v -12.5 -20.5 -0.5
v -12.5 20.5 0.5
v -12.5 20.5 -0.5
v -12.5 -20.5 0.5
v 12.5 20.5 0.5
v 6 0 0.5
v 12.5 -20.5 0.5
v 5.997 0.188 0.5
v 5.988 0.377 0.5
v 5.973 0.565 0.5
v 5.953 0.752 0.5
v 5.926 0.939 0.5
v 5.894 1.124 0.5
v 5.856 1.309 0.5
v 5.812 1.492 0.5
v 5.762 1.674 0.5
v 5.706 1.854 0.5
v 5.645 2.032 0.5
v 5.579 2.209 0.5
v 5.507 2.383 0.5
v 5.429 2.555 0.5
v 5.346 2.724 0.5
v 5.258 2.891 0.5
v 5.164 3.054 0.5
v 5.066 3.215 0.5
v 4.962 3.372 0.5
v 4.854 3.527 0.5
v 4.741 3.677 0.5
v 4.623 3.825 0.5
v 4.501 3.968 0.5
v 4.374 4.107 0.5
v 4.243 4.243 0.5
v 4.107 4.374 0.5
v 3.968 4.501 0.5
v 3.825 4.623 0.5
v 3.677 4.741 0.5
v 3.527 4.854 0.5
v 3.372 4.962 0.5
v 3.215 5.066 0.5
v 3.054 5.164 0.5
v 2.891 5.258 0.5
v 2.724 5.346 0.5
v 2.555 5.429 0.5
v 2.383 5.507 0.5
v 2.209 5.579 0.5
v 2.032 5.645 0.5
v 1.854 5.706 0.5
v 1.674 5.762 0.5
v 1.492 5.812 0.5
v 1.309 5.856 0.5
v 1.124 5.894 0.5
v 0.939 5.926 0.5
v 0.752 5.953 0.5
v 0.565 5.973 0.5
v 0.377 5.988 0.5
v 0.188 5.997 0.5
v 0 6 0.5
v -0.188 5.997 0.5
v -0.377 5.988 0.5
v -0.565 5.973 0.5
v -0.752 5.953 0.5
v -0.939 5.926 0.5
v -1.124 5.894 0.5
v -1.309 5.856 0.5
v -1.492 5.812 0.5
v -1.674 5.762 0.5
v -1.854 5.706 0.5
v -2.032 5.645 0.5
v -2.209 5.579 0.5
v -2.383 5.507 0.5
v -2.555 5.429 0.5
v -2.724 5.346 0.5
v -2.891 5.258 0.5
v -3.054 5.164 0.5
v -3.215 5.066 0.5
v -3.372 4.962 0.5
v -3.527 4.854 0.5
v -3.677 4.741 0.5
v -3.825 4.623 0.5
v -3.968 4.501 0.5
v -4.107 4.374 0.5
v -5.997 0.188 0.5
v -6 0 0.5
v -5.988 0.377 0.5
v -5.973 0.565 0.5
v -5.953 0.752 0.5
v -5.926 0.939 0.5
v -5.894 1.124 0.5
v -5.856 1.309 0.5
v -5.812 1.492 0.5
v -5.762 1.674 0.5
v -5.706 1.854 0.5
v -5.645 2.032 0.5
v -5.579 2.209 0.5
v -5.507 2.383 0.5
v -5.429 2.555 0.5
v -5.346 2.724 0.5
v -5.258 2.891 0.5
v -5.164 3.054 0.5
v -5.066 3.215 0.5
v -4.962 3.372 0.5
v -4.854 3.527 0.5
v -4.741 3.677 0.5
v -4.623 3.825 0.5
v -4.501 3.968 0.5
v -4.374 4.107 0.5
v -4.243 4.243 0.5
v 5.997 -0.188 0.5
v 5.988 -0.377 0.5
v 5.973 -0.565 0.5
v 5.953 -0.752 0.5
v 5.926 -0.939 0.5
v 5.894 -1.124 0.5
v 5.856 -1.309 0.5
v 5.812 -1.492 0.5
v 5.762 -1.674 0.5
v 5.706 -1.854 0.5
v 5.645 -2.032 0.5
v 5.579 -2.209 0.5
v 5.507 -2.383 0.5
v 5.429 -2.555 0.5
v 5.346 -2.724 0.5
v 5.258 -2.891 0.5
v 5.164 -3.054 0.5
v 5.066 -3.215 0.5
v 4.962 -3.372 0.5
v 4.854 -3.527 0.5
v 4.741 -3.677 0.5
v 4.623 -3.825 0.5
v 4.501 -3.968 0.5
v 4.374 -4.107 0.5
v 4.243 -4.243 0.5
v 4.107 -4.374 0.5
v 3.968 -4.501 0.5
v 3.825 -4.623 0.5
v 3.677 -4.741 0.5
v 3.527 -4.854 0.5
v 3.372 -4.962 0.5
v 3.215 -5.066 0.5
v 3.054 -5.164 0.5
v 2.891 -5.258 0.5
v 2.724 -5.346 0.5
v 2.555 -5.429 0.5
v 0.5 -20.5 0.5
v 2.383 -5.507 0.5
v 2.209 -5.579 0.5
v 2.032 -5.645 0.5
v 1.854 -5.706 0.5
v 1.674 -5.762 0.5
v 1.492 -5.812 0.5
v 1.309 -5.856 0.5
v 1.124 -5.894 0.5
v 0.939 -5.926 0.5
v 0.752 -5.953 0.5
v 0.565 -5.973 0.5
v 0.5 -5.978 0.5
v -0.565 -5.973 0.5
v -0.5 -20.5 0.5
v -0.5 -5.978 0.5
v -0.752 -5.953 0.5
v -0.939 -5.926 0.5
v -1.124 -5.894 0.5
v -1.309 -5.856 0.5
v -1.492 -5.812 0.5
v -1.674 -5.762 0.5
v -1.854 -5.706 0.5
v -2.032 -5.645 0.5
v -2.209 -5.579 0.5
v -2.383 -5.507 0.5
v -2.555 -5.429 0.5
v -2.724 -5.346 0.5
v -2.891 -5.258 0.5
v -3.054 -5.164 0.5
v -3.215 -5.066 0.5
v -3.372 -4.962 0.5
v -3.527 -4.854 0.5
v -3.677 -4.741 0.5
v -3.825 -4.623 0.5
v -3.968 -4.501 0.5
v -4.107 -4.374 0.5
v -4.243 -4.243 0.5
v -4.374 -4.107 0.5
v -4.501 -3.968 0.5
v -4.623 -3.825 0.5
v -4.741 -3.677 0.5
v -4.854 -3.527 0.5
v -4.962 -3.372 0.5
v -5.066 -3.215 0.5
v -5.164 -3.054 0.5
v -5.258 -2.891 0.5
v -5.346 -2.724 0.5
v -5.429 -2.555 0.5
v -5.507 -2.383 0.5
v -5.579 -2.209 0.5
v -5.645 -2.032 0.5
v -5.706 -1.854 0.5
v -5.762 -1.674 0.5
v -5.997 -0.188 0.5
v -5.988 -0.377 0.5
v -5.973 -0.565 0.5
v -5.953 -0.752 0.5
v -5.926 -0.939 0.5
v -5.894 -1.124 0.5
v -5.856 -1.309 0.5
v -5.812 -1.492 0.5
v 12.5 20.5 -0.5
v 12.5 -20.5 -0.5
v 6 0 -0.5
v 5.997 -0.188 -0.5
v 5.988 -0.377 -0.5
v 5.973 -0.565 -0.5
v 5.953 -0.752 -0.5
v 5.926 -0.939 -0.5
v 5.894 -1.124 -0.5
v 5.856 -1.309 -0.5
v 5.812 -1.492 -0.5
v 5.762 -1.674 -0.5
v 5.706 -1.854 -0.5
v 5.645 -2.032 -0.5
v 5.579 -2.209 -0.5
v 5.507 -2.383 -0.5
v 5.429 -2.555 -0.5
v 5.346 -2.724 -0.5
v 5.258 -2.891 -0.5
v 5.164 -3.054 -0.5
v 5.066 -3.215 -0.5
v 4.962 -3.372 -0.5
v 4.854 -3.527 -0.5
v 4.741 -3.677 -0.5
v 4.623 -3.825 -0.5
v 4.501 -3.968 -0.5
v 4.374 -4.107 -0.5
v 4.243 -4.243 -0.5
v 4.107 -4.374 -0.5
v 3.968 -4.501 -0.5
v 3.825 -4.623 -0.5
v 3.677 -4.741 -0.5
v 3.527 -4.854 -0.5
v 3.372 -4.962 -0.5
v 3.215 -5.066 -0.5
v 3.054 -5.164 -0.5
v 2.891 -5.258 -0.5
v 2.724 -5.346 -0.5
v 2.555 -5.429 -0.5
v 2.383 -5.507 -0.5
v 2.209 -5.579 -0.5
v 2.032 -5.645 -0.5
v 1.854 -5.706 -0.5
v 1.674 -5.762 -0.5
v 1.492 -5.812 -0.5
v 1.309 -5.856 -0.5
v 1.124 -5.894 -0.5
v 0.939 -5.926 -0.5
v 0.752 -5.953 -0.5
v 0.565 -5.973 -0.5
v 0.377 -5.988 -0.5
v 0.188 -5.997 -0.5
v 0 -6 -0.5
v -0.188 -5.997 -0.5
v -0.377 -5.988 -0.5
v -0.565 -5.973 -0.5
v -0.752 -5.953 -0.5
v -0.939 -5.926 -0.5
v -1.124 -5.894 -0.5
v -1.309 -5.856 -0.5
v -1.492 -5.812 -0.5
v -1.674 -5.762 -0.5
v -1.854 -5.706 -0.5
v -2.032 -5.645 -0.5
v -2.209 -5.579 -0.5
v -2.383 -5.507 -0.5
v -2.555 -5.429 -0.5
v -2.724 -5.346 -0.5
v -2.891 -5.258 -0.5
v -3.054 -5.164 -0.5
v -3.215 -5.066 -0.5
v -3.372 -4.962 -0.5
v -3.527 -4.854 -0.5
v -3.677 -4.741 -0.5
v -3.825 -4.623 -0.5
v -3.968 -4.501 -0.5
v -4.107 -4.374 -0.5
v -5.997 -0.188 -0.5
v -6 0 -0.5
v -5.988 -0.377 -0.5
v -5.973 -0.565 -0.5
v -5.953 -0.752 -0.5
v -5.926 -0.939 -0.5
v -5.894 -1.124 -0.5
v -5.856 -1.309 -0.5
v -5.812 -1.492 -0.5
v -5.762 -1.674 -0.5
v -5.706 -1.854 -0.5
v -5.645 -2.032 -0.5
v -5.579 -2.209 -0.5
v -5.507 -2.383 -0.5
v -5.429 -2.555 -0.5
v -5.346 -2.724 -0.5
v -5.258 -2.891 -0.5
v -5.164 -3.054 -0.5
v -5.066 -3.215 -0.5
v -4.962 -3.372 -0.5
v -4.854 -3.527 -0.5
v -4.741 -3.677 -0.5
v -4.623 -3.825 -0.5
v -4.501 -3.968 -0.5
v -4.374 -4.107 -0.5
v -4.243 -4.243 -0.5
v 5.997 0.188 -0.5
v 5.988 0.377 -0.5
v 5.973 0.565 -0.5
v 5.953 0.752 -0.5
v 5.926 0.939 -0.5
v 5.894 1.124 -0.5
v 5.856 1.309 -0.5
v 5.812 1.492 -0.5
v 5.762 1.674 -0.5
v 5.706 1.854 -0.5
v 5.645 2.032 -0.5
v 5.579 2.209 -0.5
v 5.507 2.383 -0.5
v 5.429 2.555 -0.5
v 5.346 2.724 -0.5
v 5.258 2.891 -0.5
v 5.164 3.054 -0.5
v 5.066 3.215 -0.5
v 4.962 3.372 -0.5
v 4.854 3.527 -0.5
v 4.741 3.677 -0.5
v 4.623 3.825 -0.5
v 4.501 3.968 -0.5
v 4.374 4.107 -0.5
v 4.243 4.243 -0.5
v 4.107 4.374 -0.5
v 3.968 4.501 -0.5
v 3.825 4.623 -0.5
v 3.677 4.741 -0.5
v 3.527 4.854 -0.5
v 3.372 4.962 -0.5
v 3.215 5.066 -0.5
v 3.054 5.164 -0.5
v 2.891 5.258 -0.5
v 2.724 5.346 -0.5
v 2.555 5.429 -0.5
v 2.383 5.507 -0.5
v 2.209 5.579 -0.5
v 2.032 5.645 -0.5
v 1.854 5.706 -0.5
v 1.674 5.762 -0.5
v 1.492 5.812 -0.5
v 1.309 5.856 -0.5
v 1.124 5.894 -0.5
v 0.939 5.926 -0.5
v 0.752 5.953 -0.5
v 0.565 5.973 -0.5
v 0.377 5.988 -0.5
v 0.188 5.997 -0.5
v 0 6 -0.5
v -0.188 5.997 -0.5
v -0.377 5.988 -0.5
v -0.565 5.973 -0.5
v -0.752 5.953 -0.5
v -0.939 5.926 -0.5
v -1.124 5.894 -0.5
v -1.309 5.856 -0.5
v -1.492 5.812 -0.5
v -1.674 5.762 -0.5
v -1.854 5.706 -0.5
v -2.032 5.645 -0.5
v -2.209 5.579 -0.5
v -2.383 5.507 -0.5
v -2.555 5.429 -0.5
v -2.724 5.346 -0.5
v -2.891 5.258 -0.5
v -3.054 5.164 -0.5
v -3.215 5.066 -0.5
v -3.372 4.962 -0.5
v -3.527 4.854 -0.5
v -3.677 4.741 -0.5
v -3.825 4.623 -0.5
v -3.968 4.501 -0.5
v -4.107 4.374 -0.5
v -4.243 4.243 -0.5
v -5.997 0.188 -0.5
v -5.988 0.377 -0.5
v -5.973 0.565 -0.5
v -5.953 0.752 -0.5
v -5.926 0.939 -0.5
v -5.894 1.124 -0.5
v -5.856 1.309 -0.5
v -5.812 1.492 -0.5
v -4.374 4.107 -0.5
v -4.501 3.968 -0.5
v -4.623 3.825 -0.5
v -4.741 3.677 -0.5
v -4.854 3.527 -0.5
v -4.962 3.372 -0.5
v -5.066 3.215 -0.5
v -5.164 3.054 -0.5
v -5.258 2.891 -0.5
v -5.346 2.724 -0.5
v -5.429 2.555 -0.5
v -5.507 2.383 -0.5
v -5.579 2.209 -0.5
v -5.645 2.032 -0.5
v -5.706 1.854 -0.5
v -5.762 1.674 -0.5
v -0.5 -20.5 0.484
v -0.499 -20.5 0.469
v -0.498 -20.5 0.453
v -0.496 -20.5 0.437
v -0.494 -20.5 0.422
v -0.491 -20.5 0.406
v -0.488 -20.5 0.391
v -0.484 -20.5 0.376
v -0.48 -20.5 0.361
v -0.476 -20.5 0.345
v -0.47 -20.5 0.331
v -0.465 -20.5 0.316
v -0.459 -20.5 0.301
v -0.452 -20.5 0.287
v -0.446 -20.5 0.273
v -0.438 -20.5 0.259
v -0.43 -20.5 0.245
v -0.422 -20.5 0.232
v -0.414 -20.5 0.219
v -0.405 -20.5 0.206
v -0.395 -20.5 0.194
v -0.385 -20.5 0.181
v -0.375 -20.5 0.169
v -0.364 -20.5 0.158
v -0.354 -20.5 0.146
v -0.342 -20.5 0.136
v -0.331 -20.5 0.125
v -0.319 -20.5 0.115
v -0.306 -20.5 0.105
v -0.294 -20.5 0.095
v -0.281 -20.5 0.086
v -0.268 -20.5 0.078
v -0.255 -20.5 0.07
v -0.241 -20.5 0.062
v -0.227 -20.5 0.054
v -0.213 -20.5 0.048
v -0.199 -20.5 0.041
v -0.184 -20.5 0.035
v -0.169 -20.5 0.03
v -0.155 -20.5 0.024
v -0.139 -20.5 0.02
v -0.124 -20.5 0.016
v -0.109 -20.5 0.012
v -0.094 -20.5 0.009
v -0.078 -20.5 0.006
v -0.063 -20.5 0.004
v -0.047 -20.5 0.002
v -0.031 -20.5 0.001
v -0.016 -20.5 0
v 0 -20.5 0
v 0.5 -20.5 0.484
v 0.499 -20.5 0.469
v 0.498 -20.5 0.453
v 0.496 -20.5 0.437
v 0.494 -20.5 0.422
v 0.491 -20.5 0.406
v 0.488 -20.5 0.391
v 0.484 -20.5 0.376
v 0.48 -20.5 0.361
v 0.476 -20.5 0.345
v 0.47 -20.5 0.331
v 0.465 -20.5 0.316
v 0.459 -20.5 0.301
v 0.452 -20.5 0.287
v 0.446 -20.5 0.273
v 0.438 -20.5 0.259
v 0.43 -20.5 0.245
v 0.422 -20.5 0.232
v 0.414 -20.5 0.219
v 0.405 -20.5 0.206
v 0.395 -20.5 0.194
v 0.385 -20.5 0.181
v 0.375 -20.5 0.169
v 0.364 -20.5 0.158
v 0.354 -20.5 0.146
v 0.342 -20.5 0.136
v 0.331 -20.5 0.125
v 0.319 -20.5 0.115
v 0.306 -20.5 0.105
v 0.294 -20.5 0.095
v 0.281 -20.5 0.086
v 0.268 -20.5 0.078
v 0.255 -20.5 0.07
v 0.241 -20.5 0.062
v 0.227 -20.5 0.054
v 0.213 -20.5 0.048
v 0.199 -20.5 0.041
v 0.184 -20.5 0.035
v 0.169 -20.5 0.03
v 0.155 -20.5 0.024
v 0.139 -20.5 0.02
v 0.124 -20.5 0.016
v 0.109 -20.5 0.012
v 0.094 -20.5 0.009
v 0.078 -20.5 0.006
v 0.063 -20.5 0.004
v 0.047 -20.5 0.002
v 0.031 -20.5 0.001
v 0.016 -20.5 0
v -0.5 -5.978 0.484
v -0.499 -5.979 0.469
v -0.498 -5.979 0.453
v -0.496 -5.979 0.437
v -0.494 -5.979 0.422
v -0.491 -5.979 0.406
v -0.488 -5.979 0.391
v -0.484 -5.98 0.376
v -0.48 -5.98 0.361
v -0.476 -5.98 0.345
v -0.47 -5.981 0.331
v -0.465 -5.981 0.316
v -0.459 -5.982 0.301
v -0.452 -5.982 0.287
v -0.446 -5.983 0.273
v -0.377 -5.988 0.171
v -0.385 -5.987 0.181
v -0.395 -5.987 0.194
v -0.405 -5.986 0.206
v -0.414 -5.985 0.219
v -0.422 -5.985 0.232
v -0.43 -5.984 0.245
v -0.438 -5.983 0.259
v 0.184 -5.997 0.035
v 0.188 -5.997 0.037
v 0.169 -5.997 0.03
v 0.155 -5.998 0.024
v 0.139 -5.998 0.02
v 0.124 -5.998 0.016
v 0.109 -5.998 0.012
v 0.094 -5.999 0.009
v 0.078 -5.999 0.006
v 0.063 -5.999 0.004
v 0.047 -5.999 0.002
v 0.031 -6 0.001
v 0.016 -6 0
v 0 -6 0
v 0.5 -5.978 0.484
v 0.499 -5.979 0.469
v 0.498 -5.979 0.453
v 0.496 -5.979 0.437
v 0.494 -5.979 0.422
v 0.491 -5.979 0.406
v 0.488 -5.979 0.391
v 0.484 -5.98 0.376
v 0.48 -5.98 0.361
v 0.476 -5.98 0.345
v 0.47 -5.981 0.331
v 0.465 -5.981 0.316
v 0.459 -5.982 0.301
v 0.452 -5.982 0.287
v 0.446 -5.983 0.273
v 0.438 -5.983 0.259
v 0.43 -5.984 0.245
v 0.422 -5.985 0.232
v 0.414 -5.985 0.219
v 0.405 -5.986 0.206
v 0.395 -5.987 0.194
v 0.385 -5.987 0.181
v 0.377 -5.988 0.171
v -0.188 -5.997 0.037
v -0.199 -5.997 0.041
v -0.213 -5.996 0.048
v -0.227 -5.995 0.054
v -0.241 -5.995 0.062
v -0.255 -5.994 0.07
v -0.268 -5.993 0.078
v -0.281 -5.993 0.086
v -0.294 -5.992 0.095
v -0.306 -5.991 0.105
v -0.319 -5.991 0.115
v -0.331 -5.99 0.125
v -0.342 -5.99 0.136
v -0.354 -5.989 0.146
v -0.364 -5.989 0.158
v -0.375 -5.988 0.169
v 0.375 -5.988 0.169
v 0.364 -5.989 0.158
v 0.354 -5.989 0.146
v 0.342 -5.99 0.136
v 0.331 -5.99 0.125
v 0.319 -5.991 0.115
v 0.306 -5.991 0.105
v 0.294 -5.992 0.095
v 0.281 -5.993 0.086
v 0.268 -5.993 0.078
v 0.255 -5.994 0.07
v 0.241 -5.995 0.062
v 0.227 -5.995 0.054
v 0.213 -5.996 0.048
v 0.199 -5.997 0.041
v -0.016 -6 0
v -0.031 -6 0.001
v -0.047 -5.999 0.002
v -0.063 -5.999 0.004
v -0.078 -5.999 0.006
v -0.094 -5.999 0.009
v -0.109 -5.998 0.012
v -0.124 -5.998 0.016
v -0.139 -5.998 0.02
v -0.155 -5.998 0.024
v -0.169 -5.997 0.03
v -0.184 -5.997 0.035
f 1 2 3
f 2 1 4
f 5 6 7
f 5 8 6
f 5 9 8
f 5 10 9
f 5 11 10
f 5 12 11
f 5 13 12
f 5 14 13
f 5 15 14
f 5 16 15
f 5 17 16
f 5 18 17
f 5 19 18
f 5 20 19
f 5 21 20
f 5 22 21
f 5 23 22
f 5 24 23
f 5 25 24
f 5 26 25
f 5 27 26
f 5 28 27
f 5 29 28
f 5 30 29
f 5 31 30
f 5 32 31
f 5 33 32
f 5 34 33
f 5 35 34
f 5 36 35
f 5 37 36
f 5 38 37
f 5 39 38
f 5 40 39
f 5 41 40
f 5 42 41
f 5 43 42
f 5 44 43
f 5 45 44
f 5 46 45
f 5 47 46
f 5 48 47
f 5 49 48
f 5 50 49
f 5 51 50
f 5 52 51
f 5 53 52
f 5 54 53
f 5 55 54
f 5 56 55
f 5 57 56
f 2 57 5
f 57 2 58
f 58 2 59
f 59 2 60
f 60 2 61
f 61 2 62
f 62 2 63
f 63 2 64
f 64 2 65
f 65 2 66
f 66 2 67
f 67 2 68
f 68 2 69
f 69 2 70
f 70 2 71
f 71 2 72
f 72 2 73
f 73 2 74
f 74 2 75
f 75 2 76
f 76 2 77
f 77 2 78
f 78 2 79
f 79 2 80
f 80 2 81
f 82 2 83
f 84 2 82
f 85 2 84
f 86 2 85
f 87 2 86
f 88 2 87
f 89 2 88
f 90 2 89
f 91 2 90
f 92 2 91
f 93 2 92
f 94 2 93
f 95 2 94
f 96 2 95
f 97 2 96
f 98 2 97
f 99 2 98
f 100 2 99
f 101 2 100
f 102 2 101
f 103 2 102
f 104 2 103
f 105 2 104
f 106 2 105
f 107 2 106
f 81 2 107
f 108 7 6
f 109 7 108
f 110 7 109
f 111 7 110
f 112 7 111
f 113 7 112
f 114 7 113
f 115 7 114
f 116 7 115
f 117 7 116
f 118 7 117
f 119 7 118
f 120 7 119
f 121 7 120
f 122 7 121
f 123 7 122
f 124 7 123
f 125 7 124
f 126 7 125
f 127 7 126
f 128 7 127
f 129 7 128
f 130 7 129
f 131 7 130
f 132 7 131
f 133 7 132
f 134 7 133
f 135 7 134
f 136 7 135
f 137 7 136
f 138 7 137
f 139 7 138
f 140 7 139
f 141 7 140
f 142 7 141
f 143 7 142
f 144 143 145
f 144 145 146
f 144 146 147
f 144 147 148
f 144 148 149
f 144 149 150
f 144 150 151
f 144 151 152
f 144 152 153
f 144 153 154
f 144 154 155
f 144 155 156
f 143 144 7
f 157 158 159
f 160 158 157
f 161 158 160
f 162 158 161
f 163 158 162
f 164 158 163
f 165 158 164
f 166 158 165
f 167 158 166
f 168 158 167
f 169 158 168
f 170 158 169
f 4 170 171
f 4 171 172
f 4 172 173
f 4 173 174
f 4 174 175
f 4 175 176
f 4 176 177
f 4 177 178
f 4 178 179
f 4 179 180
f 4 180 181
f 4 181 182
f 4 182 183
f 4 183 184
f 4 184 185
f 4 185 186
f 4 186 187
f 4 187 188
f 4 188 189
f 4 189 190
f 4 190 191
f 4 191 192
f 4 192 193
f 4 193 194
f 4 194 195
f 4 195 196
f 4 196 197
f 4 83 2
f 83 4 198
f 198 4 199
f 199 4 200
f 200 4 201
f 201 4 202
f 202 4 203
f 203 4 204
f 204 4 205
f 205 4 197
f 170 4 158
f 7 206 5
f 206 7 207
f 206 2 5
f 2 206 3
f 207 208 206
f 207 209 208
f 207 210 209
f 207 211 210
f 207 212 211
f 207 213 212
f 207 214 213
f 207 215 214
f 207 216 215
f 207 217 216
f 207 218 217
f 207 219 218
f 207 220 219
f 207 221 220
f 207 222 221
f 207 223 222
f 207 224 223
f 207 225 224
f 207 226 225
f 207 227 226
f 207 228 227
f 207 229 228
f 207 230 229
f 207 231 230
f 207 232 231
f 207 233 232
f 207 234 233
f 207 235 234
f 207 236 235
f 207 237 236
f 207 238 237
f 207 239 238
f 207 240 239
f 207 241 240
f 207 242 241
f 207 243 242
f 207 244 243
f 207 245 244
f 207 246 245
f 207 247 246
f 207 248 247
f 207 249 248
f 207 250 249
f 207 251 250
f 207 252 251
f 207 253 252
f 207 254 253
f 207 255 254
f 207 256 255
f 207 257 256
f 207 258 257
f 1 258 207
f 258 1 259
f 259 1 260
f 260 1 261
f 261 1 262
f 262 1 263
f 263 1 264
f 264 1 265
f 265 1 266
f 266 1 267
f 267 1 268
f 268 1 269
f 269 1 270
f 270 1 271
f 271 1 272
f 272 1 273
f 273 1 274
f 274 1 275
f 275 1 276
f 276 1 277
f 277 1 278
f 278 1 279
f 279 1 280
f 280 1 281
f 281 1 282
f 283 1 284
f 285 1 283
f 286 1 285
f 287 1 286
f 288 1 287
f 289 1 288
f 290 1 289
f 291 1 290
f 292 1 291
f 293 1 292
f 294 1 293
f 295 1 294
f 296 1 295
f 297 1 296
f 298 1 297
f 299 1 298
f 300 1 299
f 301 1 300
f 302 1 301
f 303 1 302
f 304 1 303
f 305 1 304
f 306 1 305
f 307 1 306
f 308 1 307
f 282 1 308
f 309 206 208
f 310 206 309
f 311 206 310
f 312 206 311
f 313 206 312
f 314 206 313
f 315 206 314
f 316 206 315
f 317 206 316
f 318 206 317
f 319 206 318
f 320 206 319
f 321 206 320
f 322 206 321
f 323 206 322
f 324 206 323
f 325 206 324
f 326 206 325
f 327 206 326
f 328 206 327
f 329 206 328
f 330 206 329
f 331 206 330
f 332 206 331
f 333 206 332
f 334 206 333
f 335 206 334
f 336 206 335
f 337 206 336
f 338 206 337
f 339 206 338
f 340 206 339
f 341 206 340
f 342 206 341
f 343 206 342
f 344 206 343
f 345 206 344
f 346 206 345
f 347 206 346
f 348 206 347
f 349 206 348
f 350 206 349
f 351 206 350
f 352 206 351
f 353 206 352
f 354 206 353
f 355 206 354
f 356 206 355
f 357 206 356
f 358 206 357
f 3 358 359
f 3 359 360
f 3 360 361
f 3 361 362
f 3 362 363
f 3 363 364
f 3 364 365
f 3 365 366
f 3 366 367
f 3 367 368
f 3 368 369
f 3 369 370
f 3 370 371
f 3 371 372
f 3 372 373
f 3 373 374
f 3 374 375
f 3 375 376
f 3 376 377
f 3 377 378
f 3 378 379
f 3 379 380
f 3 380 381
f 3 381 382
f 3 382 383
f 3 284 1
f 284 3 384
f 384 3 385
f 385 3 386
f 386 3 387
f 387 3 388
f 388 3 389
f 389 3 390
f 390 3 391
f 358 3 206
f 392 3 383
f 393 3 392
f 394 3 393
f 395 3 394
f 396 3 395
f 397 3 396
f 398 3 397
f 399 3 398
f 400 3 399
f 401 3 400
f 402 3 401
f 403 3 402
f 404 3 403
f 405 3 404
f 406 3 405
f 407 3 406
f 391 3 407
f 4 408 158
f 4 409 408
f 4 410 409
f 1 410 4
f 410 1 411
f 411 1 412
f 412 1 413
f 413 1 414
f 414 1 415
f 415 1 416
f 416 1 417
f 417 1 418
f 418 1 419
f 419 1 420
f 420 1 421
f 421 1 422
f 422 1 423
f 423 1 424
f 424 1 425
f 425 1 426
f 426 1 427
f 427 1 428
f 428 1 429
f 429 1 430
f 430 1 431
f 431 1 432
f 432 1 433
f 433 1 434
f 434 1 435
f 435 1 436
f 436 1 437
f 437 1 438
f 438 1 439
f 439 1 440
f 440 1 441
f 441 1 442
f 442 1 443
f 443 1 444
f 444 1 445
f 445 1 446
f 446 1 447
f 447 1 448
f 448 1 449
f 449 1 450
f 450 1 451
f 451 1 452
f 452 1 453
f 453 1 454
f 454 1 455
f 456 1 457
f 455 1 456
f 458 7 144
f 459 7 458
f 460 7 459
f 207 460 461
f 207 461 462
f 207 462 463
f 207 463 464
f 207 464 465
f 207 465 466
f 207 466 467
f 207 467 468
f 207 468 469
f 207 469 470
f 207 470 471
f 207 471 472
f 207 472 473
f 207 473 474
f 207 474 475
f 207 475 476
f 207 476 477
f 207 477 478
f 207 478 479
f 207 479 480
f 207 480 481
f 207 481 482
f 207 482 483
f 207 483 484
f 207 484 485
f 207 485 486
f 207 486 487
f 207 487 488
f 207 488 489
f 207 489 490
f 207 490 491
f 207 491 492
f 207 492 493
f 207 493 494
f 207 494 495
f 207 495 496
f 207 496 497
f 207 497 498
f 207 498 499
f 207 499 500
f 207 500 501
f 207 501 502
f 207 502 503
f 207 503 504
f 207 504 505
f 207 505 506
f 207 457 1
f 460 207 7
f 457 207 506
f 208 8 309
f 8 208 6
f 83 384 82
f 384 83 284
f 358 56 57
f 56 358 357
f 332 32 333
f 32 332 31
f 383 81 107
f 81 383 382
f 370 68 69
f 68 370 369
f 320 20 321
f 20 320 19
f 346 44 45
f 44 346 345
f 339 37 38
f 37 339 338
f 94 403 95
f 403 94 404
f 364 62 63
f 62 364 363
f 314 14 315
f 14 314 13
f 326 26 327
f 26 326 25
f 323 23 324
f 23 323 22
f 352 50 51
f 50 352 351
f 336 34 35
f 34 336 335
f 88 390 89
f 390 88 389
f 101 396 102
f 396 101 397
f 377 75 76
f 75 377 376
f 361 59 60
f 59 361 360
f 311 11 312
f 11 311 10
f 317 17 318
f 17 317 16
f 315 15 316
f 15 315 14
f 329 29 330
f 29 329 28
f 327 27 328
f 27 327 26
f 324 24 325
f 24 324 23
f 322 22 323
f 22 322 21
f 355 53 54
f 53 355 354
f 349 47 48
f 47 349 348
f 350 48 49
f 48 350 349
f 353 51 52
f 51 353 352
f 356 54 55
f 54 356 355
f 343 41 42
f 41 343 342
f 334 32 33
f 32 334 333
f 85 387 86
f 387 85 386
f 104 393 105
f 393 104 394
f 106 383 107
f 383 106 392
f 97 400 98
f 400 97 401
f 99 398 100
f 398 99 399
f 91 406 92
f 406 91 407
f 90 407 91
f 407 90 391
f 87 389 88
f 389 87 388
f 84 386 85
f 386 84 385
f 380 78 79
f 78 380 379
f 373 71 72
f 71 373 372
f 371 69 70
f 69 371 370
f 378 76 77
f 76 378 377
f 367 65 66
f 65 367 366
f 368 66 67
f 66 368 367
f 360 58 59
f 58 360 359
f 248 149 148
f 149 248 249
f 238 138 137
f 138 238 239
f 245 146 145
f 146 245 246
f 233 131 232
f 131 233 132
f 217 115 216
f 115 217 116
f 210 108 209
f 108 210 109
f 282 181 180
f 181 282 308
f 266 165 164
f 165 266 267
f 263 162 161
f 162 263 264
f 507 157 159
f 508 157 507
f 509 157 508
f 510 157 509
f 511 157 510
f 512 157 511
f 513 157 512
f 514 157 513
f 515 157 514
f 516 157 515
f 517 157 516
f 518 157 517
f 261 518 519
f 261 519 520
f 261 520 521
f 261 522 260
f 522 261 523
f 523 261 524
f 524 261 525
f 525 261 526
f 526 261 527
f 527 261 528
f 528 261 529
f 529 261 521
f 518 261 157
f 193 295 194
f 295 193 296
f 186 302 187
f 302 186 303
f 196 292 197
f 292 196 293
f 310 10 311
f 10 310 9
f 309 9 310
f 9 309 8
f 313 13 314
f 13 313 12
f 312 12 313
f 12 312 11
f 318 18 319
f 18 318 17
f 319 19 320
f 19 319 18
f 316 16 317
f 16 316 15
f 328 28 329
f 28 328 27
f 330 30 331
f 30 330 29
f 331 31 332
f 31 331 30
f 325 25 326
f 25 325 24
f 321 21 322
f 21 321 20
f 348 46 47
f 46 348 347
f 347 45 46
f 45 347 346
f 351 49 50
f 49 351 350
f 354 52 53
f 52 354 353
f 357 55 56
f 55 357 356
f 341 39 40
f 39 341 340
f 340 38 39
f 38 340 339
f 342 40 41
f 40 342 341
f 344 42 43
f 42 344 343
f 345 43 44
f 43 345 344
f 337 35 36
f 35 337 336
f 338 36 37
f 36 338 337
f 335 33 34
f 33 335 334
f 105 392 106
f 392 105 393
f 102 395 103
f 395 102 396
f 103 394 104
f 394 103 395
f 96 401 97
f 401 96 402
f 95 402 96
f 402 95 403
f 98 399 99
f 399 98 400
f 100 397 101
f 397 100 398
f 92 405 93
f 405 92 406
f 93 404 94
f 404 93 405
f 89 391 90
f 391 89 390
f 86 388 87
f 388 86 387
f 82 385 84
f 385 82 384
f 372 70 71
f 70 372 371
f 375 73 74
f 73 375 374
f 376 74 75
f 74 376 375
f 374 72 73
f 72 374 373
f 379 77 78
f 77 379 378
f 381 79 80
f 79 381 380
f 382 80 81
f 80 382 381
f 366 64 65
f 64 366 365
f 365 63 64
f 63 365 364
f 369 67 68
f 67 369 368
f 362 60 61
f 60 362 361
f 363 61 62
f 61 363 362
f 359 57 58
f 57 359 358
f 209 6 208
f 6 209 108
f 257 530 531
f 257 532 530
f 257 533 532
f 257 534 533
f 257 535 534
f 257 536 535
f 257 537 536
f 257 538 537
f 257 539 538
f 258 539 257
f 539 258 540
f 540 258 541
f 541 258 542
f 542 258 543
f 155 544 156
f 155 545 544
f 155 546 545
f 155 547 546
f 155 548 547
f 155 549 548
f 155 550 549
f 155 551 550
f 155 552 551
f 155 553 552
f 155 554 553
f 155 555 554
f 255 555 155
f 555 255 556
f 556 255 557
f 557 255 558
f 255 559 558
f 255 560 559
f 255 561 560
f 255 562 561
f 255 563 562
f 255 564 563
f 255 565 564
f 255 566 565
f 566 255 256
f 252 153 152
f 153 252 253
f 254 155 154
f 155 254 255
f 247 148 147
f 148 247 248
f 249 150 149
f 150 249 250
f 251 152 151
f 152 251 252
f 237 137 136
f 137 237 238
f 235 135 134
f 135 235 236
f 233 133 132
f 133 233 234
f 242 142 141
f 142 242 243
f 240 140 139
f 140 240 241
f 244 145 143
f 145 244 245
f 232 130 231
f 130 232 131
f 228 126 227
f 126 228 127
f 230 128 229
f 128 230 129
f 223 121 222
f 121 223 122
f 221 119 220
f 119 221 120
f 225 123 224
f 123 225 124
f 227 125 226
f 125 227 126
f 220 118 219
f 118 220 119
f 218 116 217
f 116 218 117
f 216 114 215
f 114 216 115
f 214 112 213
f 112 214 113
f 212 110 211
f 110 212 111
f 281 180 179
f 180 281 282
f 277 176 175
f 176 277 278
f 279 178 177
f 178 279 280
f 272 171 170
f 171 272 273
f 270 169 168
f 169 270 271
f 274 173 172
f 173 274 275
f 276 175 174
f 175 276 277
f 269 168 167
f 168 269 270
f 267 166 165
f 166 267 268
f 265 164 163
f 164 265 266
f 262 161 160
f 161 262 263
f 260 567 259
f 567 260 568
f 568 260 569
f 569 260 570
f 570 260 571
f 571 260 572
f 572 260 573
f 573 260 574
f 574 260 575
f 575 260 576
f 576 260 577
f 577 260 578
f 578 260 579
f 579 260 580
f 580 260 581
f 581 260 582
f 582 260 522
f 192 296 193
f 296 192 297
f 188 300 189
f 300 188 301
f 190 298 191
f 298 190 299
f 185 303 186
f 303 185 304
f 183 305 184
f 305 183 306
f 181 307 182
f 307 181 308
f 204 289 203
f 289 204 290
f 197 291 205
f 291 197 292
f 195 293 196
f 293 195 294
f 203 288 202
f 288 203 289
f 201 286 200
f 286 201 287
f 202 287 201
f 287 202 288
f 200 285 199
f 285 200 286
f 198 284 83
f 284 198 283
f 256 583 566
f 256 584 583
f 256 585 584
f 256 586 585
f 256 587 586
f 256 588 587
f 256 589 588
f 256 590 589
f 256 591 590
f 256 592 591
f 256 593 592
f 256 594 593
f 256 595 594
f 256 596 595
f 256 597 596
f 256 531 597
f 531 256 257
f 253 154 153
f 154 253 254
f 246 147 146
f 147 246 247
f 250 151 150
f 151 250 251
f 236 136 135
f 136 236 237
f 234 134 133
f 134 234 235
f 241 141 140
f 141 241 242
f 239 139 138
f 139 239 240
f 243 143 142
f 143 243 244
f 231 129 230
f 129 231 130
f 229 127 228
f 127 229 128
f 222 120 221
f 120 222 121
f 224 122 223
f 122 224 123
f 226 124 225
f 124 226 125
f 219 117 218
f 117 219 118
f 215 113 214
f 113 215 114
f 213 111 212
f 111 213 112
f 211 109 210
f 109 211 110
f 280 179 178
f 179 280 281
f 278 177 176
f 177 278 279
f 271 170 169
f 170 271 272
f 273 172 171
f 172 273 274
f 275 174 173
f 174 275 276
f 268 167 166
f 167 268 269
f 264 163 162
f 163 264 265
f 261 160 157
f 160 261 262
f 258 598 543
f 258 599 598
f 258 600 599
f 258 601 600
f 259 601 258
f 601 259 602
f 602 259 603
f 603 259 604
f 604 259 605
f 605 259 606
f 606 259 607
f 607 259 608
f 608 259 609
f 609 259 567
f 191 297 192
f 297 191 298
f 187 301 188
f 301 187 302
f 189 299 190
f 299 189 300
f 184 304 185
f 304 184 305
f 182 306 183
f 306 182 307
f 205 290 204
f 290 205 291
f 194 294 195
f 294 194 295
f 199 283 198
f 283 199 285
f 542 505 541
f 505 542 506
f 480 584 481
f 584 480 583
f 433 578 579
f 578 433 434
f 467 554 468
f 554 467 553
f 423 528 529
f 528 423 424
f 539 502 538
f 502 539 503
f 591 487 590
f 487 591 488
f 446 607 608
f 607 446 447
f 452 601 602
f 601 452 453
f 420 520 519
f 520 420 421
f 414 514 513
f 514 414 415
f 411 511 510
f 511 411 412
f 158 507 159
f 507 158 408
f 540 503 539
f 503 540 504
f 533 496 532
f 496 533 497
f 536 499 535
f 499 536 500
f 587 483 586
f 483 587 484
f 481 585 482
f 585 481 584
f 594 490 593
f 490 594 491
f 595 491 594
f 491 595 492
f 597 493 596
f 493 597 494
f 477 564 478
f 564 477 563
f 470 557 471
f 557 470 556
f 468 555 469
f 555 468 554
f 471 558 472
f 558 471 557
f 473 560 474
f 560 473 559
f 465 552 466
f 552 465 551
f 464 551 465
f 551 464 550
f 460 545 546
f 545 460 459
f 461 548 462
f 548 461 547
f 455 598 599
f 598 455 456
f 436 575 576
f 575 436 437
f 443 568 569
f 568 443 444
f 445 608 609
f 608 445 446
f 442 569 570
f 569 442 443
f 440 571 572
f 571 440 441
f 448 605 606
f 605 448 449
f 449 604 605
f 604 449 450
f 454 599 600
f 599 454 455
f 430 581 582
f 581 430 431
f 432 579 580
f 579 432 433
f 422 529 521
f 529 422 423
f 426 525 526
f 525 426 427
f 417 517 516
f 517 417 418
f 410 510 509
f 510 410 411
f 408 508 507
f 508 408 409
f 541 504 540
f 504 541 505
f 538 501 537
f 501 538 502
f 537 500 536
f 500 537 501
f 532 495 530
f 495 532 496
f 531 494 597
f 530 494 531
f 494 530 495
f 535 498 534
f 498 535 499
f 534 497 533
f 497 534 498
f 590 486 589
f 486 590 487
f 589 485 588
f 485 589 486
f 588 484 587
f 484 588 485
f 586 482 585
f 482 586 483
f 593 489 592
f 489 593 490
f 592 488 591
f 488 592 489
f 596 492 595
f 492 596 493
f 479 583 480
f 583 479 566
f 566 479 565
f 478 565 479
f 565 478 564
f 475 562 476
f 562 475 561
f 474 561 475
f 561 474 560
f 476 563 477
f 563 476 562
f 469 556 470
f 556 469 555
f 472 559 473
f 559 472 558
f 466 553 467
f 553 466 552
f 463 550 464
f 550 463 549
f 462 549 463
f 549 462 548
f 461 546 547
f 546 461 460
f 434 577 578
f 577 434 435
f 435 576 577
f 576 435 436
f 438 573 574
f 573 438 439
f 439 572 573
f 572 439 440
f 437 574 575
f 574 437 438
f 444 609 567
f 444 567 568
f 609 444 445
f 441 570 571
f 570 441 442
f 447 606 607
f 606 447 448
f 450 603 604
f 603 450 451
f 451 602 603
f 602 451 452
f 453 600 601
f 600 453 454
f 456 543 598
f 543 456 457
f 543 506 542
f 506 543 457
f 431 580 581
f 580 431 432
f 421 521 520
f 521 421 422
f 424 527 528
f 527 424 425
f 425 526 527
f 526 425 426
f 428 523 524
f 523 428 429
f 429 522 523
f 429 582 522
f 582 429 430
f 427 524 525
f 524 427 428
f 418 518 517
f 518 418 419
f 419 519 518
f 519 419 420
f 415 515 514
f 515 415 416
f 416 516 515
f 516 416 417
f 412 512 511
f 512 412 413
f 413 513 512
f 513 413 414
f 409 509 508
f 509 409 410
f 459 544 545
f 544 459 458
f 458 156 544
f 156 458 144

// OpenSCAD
//CAPA2
$fn=200;
largo=41;
ancho=25;
alto=1;
d_cir=12;
ancho_c1=2;
largo_c1=11;

ancho_c2=3;
largo_c2=8;

difference(){
    cube([ancho,largo,alto],center=true);
    cylinder(h=alto,r=d_cir/2, center = true);
    rotate([90,0,0]){
        translate([0,0.5,d_cir+2])
        {
            cylinder(h=20,r=0.5, center = true);
        }
    }

}
